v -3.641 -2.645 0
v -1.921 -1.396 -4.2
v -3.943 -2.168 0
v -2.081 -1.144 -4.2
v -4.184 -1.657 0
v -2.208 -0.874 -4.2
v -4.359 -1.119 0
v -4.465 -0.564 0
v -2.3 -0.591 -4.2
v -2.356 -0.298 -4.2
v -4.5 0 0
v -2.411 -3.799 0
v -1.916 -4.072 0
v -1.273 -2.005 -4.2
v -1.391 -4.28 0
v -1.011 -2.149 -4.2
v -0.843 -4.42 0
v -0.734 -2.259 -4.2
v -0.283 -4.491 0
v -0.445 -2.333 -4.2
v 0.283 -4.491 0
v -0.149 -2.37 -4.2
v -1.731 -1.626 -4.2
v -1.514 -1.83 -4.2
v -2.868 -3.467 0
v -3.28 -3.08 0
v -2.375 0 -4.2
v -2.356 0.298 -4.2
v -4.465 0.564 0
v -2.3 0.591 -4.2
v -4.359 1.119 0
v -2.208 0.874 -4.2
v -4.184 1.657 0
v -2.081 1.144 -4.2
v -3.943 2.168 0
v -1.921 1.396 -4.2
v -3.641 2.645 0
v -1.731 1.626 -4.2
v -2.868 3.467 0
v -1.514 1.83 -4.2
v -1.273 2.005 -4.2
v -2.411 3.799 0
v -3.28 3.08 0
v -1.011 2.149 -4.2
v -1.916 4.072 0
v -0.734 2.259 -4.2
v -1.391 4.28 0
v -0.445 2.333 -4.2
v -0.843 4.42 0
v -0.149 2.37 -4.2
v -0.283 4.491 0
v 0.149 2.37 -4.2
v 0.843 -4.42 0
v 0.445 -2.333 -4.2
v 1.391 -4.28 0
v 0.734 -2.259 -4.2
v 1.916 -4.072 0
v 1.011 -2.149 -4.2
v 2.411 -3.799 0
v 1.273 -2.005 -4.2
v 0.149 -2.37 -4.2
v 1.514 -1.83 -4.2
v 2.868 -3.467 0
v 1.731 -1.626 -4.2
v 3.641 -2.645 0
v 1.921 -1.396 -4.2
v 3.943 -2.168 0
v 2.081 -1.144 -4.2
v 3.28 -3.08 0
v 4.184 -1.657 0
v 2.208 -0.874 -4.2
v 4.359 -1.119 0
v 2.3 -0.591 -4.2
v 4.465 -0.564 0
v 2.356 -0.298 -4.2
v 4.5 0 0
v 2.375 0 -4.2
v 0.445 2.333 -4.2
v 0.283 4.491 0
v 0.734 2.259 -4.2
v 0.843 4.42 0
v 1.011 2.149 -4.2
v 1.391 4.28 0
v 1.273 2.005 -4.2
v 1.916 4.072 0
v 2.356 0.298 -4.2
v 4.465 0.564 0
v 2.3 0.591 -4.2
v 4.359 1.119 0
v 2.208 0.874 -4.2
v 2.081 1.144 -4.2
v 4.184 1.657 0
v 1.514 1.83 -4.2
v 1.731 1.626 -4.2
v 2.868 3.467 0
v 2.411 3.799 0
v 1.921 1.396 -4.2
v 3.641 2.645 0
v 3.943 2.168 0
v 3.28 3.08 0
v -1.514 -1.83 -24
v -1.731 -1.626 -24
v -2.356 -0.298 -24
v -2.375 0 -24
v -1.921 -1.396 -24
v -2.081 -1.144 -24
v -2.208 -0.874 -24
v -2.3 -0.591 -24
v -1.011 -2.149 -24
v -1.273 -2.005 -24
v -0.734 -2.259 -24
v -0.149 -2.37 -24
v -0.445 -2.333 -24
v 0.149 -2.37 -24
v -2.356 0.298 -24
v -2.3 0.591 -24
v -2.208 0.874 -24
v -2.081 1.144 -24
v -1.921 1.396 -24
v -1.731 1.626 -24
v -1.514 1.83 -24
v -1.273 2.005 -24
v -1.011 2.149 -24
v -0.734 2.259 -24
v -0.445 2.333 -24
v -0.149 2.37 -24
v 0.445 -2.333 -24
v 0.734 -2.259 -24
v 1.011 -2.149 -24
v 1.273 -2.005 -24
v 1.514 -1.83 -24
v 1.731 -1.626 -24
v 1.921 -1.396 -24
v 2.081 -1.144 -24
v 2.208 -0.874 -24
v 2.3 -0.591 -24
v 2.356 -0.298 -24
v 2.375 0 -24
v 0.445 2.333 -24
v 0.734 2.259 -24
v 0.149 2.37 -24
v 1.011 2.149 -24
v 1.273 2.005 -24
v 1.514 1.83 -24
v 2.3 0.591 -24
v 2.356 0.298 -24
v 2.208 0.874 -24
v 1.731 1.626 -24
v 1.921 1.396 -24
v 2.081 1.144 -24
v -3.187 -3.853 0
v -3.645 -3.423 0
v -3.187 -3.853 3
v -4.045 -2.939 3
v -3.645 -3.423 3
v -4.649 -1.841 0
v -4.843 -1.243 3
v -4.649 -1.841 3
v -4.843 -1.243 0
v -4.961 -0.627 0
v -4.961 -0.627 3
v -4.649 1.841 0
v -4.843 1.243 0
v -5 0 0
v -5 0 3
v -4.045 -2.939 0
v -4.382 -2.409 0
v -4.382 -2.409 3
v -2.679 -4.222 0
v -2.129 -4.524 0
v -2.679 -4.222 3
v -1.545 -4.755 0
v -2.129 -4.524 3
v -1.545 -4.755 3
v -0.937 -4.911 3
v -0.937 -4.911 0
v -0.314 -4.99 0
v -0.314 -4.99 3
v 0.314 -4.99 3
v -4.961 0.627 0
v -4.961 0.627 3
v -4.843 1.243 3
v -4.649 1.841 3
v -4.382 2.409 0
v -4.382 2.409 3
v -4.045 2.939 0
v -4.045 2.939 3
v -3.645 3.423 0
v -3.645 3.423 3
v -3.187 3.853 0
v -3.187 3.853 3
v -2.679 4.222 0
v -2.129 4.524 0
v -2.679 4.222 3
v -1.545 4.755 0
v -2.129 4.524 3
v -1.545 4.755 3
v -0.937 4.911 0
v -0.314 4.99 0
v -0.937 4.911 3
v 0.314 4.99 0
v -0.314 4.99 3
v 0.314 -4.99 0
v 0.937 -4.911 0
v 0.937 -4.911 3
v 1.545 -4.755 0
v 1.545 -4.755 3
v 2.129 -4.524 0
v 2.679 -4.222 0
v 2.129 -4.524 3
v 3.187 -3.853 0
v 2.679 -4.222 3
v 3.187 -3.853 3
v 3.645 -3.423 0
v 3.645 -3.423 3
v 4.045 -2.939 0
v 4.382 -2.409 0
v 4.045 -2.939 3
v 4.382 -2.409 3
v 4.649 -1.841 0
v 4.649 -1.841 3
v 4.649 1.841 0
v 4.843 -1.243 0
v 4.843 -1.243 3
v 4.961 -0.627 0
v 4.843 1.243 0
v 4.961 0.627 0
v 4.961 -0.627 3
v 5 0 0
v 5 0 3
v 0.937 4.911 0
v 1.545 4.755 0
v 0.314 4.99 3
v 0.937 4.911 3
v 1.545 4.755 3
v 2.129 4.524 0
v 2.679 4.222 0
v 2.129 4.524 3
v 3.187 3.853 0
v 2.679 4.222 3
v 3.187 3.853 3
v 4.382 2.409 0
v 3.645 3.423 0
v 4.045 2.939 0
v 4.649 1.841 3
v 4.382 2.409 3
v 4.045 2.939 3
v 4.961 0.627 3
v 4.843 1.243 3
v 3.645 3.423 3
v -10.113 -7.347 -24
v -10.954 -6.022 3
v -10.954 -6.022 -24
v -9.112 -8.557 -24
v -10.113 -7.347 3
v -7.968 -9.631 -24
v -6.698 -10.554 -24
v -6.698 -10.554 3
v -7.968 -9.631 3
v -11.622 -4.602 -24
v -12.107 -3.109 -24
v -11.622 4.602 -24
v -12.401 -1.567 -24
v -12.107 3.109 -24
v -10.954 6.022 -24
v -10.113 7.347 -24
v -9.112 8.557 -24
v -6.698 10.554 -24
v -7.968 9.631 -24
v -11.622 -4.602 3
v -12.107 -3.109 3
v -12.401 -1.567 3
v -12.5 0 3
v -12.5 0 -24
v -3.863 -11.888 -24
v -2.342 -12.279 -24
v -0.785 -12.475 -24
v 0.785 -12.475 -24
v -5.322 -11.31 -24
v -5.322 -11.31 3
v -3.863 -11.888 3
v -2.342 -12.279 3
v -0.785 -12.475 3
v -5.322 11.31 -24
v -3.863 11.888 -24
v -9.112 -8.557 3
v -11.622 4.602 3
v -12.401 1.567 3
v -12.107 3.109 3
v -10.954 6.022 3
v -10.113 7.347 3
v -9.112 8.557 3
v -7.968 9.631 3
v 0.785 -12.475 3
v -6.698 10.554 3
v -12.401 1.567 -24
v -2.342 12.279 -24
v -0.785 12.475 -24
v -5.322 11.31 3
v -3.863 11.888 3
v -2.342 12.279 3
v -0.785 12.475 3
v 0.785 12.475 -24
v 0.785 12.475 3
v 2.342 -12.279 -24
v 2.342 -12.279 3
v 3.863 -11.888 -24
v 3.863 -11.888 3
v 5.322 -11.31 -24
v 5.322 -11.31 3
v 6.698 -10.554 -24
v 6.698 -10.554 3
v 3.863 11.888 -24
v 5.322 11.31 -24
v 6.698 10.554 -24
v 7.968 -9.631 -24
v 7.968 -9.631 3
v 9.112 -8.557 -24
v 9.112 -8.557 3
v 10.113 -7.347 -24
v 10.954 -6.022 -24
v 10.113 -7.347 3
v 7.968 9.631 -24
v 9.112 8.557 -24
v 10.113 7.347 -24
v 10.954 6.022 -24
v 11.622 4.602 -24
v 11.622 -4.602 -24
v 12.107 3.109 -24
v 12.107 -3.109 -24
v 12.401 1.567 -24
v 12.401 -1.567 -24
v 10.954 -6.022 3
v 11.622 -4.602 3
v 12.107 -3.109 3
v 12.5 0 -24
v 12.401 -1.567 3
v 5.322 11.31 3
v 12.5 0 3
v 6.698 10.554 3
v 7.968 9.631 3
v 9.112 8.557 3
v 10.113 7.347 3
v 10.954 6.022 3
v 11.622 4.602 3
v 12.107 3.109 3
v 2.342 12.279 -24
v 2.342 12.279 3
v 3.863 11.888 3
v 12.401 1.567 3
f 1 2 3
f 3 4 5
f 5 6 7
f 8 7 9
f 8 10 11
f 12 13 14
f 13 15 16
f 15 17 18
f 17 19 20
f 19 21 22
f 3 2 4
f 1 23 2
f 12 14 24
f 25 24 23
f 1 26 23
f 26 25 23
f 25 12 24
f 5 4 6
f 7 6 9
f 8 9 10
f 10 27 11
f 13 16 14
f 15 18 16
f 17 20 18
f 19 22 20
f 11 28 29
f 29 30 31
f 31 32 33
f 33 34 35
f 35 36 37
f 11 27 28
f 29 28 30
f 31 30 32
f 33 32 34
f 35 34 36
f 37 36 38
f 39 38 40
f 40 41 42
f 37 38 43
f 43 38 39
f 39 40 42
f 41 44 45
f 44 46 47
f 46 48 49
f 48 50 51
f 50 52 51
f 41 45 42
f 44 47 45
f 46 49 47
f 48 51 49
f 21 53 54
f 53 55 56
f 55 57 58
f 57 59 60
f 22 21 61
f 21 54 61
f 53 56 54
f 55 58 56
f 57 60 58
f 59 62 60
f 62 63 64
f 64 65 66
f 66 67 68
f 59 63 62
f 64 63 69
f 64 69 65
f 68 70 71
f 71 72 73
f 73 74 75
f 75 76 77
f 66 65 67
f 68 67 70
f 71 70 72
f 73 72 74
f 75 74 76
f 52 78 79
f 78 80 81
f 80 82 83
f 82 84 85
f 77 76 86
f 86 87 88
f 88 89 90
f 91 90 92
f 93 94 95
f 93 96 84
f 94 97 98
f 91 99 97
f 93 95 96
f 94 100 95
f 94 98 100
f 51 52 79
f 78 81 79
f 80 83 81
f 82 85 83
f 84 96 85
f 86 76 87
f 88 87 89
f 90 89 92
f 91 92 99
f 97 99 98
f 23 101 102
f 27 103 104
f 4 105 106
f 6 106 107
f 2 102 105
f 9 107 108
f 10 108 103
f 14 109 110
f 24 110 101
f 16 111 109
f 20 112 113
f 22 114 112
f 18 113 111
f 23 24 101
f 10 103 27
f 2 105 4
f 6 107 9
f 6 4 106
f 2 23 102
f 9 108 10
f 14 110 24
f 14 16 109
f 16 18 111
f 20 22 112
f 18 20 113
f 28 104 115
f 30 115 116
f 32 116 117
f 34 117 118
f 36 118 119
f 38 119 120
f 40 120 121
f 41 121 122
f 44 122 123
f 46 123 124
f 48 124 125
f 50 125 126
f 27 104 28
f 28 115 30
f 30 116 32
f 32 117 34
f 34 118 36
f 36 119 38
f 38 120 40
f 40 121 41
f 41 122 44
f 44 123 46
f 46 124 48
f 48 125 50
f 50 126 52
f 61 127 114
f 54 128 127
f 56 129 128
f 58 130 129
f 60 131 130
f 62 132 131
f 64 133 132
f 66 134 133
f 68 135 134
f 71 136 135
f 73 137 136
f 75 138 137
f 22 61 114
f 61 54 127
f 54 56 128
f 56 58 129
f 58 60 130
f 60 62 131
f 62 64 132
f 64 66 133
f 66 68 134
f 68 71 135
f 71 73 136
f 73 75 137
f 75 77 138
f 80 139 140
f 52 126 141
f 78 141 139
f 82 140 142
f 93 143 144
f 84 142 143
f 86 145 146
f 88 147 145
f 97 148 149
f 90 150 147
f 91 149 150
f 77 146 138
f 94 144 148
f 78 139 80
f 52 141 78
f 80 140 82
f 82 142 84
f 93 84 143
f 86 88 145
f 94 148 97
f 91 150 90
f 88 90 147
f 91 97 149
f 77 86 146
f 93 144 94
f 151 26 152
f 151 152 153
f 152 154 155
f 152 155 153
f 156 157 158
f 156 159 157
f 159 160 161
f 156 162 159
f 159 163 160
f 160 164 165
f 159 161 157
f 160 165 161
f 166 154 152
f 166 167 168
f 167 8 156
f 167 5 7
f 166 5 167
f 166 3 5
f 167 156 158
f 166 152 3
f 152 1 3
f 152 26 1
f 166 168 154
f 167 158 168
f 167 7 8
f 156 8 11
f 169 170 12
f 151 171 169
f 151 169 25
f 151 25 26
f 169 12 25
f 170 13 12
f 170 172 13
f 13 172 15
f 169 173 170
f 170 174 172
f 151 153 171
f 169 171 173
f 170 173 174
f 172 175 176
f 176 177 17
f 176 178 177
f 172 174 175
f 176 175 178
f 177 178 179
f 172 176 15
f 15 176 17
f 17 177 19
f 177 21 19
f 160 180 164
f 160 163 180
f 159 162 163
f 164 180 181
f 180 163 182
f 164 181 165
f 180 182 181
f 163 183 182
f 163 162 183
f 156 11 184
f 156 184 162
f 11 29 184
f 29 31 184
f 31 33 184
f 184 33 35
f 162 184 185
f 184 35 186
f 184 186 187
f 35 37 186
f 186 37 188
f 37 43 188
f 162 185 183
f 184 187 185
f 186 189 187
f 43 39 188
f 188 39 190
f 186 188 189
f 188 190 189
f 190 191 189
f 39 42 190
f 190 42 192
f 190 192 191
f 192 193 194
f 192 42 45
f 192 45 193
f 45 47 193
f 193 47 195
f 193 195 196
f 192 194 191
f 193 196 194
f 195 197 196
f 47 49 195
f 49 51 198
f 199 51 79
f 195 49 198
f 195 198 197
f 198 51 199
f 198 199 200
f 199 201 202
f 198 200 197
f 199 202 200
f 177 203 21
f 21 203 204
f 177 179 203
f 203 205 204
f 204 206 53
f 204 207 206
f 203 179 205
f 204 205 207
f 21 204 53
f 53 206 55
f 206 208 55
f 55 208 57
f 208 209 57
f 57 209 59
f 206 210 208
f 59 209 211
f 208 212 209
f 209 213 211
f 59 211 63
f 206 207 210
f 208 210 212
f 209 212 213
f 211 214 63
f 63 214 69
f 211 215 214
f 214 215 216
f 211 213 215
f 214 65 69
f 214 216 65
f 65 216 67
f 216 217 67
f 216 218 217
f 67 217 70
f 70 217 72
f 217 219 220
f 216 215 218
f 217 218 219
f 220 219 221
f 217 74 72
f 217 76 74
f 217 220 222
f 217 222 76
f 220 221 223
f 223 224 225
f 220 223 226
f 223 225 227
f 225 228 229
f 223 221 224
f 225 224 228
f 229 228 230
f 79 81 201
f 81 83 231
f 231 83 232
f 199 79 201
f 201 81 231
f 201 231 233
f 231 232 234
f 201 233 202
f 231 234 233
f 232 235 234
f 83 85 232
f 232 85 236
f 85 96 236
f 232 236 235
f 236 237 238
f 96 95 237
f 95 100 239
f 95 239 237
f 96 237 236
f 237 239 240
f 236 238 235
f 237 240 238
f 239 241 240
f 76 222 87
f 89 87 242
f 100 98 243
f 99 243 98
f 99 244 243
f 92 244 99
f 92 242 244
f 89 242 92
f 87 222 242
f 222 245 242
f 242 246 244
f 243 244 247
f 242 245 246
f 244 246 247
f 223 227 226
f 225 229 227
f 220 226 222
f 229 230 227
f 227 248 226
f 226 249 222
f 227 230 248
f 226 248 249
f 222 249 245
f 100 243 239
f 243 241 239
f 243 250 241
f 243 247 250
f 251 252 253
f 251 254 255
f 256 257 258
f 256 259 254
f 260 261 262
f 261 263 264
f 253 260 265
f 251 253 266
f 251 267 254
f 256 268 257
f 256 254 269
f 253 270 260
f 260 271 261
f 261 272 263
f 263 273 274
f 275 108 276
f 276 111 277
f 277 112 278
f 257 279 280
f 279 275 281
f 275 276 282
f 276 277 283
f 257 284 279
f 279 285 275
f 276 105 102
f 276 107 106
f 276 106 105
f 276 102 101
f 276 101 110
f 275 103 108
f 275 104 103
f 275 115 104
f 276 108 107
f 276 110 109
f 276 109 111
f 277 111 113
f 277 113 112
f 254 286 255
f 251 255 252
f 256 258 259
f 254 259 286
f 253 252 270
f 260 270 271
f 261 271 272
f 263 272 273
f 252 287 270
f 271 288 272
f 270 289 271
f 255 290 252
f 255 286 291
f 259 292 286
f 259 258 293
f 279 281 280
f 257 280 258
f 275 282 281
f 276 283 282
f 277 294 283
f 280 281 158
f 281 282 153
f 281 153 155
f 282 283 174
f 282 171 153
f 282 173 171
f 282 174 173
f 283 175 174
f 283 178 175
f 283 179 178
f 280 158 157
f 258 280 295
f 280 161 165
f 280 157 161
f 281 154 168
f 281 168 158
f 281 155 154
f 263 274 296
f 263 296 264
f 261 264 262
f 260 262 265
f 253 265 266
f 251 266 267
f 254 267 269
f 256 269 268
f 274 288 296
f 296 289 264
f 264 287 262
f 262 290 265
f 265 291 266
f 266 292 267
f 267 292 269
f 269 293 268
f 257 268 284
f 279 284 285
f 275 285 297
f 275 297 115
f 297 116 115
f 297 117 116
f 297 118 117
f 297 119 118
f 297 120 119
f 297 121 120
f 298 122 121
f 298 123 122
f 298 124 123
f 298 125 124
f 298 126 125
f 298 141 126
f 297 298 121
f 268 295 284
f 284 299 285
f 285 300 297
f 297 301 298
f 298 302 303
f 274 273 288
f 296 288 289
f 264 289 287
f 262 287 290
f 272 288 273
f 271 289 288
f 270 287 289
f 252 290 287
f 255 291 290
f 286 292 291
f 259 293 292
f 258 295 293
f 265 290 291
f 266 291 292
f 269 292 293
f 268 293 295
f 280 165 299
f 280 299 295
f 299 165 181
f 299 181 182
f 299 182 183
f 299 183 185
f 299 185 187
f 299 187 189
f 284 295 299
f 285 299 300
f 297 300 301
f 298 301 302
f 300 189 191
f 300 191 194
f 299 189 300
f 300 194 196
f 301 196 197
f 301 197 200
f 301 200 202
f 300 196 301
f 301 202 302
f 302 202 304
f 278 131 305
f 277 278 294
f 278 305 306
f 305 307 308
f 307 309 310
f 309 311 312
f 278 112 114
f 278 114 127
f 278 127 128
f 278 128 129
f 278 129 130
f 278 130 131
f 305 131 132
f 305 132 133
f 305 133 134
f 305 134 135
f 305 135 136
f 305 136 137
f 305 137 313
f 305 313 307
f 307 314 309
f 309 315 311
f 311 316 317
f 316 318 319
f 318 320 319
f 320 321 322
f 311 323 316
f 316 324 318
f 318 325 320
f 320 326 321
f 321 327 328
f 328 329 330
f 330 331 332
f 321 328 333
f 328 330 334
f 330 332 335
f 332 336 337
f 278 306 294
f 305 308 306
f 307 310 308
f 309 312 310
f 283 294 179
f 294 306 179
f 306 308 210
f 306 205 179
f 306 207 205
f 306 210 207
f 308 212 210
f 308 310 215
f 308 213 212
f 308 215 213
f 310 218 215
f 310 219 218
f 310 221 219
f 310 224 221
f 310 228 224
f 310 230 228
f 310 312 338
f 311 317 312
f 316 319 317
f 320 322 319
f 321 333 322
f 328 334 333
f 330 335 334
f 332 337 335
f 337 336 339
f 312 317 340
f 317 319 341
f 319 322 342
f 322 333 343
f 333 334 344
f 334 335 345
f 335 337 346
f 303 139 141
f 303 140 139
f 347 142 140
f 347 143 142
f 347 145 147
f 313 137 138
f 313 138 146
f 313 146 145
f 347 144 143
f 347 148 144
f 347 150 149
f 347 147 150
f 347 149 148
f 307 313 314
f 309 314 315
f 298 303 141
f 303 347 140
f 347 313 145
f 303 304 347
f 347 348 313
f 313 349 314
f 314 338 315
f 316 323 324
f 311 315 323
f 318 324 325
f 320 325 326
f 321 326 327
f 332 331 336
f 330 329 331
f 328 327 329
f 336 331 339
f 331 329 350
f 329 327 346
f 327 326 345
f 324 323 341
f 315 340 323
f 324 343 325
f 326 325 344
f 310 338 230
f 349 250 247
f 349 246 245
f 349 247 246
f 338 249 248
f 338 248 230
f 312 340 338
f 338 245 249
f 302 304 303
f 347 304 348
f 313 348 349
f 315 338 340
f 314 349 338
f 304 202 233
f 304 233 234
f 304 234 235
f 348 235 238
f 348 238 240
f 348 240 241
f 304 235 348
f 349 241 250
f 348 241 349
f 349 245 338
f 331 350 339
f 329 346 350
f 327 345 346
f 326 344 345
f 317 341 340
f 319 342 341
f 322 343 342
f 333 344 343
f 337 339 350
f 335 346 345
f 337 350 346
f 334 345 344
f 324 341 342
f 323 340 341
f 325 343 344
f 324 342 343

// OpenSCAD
$fn = 50;


difference() {
	union() {
		translate(v = [0, 0, -24.0000000000]) {
			cylinder(h = 27, r = 12.5000000000);
		}
	}
	union() {
		translate(v = [0, 0, 0]) {
			rotate(a = [0, 0, 0]) {
				difference() {
					union() {
						translate(v = [0, 0, -27.0000000000]) {
							cylinder(h = 27, r = 2.2500000000);
						}
						translate(v = [0, 0, -4.2000000000]) {
							cylinder(h = 4.2000000000, r1 = 2.3750000000, r2 = 4.5000000000);
						}
						translate(v = [0, 0, -27.0000000000]) {
							cylinder(h = 27, r = 2.3750000000);
						}
						translate(v = [0, 0, -27.0000000000]) {
							cylinder(h = 27, r = 2.2500000000);
						}
					}
					union();
				}
			}
		}
		#cylinder(h = 3, r = 5.0000000000);
	}
}
